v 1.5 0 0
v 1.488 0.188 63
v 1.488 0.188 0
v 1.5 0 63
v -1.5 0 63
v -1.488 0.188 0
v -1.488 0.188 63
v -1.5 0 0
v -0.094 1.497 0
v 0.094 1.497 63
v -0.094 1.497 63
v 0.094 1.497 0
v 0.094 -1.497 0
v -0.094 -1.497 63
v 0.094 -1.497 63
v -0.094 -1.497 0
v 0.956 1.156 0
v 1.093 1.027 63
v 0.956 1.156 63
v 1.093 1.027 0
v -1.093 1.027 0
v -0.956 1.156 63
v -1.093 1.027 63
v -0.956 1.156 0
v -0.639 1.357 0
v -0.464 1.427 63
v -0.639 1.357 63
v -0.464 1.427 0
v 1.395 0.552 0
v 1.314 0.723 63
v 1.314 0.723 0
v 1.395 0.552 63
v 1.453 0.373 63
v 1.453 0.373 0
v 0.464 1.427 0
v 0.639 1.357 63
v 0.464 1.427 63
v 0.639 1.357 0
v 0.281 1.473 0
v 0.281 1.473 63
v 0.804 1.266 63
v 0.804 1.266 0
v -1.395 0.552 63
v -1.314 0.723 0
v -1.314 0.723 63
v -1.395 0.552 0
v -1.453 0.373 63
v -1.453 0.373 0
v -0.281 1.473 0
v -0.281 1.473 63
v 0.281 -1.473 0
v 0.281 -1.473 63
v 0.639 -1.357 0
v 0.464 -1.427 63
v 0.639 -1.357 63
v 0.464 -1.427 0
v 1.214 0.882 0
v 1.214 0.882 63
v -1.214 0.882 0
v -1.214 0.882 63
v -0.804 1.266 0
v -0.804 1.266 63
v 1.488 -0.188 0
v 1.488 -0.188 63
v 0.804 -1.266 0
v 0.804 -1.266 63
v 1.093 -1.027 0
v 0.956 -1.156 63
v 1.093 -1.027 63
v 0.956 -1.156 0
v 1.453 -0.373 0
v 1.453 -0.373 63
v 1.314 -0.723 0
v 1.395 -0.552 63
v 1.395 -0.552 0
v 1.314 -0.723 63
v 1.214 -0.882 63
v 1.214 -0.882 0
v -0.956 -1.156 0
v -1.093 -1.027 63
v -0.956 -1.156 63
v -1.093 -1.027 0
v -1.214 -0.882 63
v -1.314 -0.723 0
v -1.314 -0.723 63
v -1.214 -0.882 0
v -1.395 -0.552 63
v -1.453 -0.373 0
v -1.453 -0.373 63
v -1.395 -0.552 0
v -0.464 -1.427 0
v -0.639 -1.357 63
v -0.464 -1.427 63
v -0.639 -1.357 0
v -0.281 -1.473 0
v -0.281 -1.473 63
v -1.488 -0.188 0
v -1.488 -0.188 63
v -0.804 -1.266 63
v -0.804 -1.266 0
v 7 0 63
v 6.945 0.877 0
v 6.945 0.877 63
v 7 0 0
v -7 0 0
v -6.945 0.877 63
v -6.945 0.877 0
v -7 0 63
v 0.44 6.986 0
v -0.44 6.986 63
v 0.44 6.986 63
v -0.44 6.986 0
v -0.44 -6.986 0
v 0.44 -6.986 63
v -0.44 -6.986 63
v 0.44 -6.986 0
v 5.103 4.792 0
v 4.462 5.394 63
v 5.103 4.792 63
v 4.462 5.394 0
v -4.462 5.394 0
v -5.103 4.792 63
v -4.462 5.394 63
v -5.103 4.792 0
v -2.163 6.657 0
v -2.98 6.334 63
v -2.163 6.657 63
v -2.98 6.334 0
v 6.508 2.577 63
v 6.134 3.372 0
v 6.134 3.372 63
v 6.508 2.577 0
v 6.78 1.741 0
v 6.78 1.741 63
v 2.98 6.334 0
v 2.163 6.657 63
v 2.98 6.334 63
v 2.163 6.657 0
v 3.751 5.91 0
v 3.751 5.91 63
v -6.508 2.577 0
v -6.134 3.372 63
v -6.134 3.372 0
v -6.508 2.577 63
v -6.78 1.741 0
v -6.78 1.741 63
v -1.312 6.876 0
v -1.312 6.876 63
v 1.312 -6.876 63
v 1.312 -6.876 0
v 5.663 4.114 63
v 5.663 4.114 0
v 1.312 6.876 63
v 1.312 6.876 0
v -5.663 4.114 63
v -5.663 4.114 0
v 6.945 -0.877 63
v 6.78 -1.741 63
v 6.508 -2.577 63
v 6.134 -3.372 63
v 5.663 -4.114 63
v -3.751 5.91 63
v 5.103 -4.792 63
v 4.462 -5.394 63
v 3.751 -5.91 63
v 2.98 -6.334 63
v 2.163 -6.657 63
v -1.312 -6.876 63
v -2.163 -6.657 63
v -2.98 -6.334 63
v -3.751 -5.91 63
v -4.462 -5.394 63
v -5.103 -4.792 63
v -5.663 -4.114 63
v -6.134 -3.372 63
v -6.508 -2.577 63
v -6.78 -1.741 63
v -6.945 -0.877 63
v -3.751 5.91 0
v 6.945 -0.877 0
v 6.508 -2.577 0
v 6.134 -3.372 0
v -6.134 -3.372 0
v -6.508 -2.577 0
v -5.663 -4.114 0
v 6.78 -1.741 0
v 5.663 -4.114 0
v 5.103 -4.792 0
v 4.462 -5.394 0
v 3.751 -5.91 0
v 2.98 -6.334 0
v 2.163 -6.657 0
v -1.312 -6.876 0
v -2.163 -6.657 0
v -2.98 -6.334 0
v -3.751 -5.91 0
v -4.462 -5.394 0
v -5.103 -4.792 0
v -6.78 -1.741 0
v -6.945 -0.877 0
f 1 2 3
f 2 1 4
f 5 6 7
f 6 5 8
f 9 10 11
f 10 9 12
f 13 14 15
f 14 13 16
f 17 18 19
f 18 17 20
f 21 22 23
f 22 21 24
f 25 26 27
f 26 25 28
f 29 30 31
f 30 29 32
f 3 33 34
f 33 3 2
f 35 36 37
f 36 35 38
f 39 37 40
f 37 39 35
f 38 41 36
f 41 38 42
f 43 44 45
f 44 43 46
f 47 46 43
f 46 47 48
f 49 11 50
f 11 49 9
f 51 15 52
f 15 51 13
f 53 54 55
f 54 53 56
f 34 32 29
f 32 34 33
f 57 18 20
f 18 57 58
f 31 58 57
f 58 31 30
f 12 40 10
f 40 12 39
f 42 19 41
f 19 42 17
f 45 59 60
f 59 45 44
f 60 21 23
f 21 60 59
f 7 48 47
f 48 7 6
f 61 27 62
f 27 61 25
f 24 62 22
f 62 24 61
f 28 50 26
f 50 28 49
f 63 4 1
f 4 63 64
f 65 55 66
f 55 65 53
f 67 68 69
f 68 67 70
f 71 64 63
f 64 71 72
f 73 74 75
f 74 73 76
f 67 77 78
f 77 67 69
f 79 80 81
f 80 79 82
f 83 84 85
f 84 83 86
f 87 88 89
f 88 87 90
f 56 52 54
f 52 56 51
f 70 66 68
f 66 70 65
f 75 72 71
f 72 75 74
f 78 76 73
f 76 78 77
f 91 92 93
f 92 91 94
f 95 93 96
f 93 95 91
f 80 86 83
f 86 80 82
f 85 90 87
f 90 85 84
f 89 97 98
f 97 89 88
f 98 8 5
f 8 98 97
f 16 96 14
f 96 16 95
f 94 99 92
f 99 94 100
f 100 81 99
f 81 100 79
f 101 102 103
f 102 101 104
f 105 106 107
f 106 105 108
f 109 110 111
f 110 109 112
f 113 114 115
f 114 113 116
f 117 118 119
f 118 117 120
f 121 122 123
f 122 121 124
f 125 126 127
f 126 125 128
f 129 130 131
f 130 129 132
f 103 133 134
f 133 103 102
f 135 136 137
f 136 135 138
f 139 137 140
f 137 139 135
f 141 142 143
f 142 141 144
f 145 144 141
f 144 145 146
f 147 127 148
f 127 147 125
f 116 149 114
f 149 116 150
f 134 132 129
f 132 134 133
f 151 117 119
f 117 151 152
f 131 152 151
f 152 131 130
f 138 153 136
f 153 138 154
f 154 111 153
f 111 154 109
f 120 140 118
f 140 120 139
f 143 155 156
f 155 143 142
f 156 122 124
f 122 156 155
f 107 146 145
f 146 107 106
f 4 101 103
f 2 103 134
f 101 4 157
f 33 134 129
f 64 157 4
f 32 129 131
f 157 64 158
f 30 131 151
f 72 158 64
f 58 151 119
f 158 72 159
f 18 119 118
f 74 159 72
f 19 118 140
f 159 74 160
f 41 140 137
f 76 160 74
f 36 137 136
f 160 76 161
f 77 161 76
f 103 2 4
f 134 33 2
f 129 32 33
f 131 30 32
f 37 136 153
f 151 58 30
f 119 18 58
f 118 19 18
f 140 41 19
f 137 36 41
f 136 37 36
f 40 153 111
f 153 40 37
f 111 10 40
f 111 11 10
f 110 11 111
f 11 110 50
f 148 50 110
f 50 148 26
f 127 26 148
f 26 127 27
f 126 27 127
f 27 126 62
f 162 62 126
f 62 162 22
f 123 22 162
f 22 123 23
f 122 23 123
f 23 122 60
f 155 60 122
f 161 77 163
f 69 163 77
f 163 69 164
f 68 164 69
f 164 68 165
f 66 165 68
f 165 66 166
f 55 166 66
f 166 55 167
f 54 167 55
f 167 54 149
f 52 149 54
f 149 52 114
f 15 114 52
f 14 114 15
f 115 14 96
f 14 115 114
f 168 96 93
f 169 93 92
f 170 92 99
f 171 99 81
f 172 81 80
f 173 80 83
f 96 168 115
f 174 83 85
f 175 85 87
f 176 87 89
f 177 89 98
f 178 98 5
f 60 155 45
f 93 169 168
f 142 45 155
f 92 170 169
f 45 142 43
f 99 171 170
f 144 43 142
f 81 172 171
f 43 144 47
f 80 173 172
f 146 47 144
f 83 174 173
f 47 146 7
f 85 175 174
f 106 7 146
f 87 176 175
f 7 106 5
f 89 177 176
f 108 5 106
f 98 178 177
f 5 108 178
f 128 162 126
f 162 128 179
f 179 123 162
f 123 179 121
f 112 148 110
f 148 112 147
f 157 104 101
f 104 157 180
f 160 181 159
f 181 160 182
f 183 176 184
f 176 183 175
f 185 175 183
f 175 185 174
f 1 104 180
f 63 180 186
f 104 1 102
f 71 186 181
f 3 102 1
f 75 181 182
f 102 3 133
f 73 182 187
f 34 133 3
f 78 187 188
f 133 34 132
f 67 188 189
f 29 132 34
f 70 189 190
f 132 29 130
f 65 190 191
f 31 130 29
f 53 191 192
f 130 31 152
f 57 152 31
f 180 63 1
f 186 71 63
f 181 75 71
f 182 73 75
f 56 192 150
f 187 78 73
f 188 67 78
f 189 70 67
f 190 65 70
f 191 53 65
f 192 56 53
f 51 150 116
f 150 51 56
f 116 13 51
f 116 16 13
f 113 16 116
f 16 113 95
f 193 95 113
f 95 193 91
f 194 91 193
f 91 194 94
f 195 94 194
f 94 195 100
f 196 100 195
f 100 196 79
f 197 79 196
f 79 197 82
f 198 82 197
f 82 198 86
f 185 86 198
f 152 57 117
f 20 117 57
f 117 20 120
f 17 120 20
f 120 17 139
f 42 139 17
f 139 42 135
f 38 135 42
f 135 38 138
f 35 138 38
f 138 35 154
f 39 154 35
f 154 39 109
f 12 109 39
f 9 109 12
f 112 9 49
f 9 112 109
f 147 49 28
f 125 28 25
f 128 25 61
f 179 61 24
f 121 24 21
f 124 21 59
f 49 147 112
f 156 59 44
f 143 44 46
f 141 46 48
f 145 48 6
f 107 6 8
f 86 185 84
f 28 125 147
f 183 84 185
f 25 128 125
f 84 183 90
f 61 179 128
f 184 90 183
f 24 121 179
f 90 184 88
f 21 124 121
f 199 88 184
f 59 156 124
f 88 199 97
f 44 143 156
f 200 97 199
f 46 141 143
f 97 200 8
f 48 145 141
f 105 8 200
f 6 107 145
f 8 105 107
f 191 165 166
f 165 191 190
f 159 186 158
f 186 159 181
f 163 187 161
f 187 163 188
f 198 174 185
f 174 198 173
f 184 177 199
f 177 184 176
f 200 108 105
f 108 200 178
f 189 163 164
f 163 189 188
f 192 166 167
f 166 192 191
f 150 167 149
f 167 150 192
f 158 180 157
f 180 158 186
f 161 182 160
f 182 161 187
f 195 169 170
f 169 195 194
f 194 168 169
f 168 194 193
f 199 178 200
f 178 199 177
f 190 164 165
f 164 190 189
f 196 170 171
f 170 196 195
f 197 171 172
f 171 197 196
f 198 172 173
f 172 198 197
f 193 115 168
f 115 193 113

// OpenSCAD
$fn = 50;


difference() {
	union() {
		cylinder(h = 63, r = 7.0000000000);
	}
	union() {
		translate(v = [0, 0, -100]) {
			cylinder(h = 200, r = 1.5000000000);
		}
		translate(v = [0, 0, -100]) {
			cylinder(h = 200, r = 1.5000000000);
		}
	}
}
